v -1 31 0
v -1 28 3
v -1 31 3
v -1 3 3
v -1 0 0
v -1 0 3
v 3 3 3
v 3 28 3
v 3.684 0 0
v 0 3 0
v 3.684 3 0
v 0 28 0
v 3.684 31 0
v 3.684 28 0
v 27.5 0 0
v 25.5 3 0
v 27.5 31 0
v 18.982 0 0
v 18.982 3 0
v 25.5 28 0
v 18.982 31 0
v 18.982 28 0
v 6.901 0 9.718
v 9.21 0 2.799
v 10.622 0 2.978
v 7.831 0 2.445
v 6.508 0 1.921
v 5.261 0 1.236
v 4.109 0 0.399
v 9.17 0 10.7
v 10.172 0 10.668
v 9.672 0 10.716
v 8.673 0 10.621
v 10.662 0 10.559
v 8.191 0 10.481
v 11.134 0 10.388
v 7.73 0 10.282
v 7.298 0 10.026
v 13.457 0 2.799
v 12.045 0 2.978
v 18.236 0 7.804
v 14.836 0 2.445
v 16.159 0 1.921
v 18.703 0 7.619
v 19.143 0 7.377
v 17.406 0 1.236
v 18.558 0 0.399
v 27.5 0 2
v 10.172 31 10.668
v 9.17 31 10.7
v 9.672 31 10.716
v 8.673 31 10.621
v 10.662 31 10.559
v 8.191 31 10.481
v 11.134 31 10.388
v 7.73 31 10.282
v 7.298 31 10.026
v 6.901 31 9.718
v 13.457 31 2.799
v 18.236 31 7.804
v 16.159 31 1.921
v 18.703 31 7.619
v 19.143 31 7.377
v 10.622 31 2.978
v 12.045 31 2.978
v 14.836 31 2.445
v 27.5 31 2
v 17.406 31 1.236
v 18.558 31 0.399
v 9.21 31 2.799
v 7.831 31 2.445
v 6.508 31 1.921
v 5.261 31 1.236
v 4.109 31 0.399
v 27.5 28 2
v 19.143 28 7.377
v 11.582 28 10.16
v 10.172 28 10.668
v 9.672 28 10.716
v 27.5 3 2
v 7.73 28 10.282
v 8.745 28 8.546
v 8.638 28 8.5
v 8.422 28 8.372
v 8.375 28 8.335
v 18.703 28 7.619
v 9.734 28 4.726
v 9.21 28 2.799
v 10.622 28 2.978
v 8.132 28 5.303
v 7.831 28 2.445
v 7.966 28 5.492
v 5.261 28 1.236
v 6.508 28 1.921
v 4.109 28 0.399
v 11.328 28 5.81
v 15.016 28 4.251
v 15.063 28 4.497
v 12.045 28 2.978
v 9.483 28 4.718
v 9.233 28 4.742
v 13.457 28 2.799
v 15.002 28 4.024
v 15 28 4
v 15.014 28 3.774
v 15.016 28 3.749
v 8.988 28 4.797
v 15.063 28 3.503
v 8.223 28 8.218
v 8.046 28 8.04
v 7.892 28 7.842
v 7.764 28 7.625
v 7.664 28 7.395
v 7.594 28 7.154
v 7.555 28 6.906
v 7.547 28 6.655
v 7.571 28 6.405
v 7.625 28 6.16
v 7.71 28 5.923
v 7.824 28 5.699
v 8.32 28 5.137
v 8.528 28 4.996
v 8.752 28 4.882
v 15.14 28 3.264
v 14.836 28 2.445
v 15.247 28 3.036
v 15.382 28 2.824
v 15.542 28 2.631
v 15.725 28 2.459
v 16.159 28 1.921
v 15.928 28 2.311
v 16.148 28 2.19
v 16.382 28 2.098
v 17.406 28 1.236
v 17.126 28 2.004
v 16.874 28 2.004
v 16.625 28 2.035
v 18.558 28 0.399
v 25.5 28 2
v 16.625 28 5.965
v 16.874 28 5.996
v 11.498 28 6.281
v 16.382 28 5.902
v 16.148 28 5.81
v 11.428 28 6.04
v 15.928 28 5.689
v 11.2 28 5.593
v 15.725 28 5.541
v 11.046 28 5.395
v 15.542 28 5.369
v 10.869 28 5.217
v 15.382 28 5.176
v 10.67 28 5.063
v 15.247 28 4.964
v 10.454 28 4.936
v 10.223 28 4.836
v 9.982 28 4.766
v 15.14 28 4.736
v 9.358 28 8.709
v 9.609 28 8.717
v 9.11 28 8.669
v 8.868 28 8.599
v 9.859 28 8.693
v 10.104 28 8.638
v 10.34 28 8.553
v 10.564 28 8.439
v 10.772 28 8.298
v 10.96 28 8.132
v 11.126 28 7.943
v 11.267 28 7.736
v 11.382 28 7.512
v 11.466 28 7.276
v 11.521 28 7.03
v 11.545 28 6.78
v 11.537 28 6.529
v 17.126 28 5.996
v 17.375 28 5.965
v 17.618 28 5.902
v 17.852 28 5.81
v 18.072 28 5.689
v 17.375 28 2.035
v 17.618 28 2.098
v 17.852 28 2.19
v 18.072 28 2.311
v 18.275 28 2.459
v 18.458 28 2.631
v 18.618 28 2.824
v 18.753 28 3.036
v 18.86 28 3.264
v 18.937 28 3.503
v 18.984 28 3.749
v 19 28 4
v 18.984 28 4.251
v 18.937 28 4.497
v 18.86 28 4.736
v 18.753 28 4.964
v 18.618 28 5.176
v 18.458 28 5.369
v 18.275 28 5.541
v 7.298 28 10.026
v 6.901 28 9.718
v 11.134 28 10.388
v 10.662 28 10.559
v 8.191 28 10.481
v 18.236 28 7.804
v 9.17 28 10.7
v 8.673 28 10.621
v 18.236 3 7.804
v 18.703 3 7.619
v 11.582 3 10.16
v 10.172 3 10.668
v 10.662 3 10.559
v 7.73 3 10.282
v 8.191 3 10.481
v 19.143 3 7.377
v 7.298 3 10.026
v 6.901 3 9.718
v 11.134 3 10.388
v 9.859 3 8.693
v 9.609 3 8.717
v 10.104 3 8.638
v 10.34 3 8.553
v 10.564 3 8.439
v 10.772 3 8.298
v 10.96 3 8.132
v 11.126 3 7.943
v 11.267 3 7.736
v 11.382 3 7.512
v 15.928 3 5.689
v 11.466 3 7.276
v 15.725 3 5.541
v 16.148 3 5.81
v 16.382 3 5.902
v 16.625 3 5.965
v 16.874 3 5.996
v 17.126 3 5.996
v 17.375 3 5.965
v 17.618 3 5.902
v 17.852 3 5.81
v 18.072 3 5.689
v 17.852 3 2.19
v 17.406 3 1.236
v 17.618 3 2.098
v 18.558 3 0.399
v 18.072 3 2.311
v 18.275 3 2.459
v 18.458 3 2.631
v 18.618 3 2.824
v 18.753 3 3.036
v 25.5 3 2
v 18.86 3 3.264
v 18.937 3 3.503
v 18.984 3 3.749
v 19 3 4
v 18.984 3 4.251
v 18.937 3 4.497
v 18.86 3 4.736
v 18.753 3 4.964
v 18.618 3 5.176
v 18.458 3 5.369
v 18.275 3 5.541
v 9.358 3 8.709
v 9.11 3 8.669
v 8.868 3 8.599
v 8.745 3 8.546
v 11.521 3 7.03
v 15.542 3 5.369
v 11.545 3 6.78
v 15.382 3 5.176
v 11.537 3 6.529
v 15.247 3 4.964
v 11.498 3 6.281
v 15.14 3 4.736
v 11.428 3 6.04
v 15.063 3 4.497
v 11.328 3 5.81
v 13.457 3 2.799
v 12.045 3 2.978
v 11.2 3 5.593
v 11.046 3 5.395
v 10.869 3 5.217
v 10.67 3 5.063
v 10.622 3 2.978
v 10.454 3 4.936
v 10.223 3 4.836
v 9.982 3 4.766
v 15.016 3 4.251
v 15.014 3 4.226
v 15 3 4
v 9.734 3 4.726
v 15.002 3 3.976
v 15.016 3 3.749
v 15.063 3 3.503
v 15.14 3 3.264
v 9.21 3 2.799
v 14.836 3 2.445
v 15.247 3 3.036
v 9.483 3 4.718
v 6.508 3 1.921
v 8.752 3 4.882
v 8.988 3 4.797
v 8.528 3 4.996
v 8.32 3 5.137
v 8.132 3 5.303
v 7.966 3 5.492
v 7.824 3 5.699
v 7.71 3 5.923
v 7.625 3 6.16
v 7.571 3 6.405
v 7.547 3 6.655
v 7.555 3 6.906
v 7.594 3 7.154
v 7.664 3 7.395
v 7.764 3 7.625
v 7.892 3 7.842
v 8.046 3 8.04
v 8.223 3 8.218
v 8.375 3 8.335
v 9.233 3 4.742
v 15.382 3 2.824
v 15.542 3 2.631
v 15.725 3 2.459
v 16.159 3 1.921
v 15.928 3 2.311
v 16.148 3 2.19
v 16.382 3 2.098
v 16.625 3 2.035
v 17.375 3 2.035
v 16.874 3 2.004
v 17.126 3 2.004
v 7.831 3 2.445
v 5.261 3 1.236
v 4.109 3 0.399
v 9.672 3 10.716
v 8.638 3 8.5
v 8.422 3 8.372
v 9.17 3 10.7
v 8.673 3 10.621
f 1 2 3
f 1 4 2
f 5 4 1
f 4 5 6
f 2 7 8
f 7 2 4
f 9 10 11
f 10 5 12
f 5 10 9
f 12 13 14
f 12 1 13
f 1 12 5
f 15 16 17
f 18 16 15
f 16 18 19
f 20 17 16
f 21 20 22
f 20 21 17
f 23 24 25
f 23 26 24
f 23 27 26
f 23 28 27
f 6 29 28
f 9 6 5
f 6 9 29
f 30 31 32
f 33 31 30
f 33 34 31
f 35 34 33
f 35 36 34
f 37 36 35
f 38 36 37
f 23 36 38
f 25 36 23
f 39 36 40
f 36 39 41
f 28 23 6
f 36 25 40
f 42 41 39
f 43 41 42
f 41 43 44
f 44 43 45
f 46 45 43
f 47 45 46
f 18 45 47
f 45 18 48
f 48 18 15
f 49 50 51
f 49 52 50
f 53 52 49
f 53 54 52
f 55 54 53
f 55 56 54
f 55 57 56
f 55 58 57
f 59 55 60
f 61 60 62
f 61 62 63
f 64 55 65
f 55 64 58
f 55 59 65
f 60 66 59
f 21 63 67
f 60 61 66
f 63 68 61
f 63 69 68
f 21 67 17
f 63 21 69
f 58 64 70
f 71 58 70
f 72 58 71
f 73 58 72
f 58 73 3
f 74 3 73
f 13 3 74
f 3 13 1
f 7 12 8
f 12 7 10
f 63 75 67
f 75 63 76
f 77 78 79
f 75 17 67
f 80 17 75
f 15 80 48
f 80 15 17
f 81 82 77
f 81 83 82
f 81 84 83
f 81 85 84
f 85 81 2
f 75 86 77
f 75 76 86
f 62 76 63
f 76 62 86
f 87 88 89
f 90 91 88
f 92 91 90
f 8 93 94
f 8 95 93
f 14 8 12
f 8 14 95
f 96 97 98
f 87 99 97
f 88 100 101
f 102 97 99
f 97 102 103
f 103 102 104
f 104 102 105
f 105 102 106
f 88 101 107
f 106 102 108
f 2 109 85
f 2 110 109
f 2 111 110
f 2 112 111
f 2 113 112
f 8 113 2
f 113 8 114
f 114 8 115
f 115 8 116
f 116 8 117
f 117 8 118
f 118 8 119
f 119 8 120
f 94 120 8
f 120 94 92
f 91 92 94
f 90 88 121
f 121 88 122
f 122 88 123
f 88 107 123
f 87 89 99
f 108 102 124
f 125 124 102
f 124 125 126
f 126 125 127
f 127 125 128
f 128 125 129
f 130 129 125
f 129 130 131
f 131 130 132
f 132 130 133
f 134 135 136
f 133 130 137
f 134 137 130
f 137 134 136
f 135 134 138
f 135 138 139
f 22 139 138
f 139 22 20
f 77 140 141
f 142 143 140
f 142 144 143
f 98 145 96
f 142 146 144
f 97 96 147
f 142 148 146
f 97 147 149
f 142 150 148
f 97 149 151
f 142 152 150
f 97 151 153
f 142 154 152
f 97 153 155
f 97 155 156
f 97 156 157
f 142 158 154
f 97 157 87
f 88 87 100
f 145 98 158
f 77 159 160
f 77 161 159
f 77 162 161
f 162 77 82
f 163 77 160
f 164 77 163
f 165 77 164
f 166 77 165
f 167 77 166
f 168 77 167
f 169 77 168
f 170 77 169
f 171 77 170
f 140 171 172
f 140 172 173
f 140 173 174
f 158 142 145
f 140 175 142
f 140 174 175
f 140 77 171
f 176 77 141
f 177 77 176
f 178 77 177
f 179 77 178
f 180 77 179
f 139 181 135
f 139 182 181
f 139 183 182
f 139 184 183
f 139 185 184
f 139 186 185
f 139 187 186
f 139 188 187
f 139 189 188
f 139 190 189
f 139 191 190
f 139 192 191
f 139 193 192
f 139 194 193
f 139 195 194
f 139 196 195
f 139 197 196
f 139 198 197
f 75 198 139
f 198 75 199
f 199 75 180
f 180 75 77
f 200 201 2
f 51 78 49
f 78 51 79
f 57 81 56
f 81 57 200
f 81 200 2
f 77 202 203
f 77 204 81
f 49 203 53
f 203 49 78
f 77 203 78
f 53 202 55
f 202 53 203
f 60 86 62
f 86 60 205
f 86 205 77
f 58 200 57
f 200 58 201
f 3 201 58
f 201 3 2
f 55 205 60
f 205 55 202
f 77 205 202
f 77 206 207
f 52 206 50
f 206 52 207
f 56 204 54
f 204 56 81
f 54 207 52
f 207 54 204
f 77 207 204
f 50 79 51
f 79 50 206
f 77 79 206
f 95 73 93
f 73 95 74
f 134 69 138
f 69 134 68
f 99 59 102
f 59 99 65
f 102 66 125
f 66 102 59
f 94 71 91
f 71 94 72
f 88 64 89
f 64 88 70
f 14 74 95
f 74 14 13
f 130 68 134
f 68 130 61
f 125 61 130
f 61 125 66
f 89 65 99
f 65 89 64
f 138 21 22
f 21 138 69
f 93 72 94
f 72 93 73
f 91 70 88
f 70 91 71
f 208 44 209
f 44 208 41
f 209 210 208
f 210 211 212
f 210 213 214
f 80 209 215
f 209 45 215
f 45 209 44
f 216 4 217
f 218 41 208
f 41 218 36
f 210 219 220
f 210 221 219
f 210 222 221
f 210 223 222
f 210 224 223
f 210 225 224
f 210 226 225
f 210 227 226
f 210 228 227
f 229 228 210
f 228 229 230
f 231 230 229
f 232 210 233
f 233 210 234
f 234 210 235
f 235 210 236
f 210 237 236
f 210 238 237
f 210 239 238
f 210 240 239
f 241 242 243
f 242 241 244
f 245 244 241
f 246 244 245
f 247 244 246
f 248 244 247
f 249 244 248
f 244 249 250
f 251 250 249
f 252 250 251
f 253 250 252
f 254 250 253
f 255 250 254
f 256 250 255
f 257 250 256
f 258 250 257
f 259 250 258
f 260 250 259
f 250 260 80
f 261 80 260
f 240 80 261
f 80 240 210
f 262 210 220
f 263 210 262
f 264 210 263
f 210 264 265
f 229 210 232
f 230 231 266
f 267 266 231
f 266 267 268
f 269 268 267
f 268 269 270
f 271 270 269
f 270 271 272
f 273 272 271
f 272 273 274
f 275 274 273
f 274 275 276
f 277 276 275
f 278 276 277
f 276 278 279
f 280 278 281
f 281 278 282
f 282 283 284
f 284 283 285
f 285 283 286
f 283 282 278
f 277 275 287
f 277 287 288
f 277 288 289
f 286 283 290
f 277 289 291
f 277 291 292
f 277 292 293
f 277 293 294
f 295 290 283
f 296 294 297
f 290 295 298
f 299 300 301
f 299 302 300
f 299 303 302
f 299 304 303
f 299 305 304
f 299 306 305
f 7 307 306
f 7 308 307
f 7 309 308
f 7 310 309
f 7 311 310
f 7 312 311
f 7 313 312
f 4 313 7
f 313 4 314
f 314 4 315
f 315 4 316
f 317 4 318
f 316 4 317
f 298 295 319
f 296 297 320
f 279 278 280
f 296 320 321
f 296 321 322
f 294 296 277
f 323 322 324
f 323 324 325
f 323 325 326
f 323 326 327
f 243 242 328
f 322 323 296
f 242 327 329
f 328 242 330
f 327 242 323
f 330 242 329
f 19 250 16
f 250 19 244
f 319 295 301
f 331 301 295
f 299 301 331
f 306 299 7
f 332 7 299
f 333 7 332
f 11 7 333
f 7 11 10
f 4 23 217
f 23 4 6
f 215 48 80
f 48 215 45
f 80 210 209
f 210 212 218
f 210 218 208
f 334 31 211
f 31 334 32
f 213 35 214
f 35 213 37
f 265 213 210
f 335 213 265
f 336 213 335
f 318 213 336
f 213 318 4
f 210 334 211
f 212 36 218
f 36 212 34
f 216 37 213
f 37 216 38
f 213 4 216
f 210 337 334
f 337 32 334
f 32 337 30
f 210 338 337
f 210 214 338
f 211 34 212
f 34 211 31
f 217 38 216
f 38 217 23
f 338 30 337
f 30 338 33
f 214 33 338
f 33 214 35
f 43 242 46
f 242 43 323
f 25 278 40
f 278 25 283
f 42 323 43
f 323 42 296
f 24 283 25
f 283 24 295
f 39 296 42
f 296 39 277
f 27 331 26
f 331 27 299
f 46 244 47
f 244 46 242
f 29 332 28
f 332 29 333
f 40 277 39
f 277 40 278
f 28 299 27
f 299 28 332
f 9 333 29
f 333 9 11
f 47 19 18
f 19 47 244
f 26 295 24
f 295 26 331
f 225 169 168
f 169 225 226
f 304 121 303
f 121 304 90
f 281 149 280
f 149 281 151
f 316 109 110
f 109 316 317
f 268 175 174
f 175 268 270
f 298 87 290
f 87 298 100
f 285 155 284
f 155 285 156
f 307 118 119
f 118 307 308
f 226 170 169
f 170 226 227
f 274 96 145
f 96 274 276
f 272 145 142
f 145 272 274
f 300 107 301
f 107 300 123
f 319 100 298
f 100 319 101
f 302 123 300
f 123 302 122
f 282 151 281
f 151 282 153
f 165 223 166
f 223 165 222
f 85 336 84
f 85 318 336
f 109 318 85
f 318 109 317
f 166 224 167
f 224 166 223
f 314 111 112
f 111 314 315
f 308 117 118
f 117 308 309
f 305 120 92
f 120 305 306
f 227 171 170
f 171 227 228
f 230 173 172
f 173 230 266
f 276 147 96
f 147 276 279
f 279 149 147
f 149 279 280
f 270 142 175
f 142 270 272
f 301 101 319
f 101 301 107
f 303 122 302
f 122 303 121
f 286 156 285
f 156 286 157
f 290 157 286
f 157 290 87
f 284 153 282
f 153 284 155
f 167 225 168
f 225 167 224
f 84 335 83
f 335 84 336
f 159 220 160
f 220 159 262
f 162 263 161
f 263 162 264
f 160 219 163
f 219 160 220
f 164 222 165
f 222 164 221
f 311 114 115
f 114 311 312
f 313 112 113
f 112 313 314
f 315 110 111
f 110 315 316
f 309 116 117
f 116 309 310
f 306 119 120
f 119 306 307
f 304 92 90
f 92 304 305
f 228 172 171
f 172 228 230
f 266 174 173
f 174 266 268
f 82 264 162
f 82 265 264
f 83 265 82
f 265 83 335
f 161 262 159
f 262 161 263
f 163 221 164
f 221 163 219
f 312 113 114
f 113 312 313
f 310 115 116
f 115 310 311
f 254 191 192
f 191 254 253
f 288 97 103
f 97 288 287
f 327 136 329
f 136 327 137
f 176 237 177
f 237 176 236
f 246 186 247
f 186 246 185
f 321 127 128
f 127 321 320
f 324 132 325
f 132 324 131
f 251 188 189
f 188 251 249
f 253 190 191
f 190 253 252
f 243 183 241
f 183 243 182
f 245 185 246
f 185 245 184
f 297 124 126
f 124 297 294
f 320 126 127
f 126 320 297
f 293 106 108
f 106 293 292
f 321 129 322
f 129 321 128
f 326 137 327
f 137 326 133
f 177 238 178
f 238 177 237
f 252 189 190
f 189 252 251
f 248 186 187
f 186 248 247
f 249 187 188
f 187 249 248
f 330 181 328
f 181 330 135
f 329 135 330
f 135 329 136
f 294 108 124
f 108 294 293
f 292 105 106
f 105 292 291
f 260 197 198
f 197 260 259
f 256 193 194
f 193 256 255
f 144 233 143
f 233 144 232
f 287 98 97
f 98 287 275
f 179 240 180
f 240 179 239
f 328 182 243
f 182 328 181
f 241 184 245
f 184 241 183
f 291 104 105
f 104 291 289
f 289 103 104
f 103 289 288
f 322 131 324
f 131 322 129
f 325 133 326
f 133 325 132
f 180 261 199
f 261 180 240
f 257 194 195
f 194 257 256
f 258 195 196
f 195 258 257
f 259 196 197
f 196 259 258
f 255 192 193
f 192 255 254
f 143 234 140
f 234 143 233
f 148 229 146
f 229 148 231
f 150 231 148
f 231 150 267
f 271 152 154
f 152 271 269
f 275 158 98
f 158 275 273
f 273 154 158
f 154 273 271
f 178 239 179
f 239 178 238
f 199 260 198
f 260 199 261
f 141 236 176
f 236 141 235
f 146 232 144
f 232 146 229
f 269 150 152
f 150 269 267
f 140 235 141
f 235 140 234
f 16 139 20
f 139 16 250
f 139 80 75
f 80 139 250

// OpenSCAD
/*lock buckle is the same as the lock buckle you will find in bags laces
this element could be used in the tourniquet to tighten the strap for the first time before the final tightening by the windlass
will allow you pull the strap but will not go back whwn you let it

*/
rad=2;//cylinders radiuses
strap_w=25;//width of the strap in mm
wall_t=3;//thickness of the side walls in mm
$fn=50;
length=17;//buckle length
angle=-45;//positioning the cylinders

/////////////////////////////////////
///////////////////////////////////////

rotate([0,angle,0])translate([length/2+wall_t,0,-rad])rotate([-90,0,0])cylinder(r=rad,h=strap_w+2*wall_t);//first cylinder to roll the strap"active"
translate([length,0,2*rad])rotate([-90,0,0])cylinder(r=rad,h=strap_w+2*wall_t);//second cylinder it sew the other end of the strap

    translate([1.5*length,0,0])cube([2,strap_w+2*wall_t,2]);//rear end of the bckle to hold the static strap end
difference(){//building the side walls
hull(){//objects hulled together to make the shape of the wall
rotate([0,angle,0])translate([length/2+wall_t,0,-rad])rotate([-90,0,0])cylinder(r=2*rad,h=wall_t);

translate([length,0,2*rad])rotate([-90,0,0])cylinder(r=2*rad,h=wall_t);

translate([-1,0,0])cube(wall_t);
    translate([1.5*length,0,0])cube([2,wall_t,2]);
}
translate([length/1.5,0,-length/1.5+wall_t])rotate([-90,0,0])cylinder(r=length/1.5,h=wall_t+.1);
//the curcular cun in the bottom of the walls
}


translate([0,strap_w+2*wall_t,0])//building the other wall "same but mirrored
mirror([0,1,0])
difference(){
hull(){
rotate([0,angle,0])translate([length/2+wall_t,0,-rad])rotate([-90,0,0])cylinder(r=2*rad,h=wall_t);

translate([length,0,2*rad])rotate([-90,0,0])cylinder(r=2*rad,h=wall_t);



translate([-1,0,0])cube(wall_t);
    translate([1.5*length,0,0])cube([2,wall_t,2]);
}
translate([length/1.5,0,-length/1.5+wall_t])rotate([-90,0,0])cylinder(r=length/1.5,h=wall_t+.1);
}

//bar
difference(){//the front end of the buckle with angled cut to go with the strap
translate([-1,0,0])cube([wall_t+1,strap_w+2*wall_t,wall_t]);
    rotate([0,angle,0])translate([0,0,-wall_t])cube([2*wall_t,strap_w+2*wall_t,wall_t]);
}
